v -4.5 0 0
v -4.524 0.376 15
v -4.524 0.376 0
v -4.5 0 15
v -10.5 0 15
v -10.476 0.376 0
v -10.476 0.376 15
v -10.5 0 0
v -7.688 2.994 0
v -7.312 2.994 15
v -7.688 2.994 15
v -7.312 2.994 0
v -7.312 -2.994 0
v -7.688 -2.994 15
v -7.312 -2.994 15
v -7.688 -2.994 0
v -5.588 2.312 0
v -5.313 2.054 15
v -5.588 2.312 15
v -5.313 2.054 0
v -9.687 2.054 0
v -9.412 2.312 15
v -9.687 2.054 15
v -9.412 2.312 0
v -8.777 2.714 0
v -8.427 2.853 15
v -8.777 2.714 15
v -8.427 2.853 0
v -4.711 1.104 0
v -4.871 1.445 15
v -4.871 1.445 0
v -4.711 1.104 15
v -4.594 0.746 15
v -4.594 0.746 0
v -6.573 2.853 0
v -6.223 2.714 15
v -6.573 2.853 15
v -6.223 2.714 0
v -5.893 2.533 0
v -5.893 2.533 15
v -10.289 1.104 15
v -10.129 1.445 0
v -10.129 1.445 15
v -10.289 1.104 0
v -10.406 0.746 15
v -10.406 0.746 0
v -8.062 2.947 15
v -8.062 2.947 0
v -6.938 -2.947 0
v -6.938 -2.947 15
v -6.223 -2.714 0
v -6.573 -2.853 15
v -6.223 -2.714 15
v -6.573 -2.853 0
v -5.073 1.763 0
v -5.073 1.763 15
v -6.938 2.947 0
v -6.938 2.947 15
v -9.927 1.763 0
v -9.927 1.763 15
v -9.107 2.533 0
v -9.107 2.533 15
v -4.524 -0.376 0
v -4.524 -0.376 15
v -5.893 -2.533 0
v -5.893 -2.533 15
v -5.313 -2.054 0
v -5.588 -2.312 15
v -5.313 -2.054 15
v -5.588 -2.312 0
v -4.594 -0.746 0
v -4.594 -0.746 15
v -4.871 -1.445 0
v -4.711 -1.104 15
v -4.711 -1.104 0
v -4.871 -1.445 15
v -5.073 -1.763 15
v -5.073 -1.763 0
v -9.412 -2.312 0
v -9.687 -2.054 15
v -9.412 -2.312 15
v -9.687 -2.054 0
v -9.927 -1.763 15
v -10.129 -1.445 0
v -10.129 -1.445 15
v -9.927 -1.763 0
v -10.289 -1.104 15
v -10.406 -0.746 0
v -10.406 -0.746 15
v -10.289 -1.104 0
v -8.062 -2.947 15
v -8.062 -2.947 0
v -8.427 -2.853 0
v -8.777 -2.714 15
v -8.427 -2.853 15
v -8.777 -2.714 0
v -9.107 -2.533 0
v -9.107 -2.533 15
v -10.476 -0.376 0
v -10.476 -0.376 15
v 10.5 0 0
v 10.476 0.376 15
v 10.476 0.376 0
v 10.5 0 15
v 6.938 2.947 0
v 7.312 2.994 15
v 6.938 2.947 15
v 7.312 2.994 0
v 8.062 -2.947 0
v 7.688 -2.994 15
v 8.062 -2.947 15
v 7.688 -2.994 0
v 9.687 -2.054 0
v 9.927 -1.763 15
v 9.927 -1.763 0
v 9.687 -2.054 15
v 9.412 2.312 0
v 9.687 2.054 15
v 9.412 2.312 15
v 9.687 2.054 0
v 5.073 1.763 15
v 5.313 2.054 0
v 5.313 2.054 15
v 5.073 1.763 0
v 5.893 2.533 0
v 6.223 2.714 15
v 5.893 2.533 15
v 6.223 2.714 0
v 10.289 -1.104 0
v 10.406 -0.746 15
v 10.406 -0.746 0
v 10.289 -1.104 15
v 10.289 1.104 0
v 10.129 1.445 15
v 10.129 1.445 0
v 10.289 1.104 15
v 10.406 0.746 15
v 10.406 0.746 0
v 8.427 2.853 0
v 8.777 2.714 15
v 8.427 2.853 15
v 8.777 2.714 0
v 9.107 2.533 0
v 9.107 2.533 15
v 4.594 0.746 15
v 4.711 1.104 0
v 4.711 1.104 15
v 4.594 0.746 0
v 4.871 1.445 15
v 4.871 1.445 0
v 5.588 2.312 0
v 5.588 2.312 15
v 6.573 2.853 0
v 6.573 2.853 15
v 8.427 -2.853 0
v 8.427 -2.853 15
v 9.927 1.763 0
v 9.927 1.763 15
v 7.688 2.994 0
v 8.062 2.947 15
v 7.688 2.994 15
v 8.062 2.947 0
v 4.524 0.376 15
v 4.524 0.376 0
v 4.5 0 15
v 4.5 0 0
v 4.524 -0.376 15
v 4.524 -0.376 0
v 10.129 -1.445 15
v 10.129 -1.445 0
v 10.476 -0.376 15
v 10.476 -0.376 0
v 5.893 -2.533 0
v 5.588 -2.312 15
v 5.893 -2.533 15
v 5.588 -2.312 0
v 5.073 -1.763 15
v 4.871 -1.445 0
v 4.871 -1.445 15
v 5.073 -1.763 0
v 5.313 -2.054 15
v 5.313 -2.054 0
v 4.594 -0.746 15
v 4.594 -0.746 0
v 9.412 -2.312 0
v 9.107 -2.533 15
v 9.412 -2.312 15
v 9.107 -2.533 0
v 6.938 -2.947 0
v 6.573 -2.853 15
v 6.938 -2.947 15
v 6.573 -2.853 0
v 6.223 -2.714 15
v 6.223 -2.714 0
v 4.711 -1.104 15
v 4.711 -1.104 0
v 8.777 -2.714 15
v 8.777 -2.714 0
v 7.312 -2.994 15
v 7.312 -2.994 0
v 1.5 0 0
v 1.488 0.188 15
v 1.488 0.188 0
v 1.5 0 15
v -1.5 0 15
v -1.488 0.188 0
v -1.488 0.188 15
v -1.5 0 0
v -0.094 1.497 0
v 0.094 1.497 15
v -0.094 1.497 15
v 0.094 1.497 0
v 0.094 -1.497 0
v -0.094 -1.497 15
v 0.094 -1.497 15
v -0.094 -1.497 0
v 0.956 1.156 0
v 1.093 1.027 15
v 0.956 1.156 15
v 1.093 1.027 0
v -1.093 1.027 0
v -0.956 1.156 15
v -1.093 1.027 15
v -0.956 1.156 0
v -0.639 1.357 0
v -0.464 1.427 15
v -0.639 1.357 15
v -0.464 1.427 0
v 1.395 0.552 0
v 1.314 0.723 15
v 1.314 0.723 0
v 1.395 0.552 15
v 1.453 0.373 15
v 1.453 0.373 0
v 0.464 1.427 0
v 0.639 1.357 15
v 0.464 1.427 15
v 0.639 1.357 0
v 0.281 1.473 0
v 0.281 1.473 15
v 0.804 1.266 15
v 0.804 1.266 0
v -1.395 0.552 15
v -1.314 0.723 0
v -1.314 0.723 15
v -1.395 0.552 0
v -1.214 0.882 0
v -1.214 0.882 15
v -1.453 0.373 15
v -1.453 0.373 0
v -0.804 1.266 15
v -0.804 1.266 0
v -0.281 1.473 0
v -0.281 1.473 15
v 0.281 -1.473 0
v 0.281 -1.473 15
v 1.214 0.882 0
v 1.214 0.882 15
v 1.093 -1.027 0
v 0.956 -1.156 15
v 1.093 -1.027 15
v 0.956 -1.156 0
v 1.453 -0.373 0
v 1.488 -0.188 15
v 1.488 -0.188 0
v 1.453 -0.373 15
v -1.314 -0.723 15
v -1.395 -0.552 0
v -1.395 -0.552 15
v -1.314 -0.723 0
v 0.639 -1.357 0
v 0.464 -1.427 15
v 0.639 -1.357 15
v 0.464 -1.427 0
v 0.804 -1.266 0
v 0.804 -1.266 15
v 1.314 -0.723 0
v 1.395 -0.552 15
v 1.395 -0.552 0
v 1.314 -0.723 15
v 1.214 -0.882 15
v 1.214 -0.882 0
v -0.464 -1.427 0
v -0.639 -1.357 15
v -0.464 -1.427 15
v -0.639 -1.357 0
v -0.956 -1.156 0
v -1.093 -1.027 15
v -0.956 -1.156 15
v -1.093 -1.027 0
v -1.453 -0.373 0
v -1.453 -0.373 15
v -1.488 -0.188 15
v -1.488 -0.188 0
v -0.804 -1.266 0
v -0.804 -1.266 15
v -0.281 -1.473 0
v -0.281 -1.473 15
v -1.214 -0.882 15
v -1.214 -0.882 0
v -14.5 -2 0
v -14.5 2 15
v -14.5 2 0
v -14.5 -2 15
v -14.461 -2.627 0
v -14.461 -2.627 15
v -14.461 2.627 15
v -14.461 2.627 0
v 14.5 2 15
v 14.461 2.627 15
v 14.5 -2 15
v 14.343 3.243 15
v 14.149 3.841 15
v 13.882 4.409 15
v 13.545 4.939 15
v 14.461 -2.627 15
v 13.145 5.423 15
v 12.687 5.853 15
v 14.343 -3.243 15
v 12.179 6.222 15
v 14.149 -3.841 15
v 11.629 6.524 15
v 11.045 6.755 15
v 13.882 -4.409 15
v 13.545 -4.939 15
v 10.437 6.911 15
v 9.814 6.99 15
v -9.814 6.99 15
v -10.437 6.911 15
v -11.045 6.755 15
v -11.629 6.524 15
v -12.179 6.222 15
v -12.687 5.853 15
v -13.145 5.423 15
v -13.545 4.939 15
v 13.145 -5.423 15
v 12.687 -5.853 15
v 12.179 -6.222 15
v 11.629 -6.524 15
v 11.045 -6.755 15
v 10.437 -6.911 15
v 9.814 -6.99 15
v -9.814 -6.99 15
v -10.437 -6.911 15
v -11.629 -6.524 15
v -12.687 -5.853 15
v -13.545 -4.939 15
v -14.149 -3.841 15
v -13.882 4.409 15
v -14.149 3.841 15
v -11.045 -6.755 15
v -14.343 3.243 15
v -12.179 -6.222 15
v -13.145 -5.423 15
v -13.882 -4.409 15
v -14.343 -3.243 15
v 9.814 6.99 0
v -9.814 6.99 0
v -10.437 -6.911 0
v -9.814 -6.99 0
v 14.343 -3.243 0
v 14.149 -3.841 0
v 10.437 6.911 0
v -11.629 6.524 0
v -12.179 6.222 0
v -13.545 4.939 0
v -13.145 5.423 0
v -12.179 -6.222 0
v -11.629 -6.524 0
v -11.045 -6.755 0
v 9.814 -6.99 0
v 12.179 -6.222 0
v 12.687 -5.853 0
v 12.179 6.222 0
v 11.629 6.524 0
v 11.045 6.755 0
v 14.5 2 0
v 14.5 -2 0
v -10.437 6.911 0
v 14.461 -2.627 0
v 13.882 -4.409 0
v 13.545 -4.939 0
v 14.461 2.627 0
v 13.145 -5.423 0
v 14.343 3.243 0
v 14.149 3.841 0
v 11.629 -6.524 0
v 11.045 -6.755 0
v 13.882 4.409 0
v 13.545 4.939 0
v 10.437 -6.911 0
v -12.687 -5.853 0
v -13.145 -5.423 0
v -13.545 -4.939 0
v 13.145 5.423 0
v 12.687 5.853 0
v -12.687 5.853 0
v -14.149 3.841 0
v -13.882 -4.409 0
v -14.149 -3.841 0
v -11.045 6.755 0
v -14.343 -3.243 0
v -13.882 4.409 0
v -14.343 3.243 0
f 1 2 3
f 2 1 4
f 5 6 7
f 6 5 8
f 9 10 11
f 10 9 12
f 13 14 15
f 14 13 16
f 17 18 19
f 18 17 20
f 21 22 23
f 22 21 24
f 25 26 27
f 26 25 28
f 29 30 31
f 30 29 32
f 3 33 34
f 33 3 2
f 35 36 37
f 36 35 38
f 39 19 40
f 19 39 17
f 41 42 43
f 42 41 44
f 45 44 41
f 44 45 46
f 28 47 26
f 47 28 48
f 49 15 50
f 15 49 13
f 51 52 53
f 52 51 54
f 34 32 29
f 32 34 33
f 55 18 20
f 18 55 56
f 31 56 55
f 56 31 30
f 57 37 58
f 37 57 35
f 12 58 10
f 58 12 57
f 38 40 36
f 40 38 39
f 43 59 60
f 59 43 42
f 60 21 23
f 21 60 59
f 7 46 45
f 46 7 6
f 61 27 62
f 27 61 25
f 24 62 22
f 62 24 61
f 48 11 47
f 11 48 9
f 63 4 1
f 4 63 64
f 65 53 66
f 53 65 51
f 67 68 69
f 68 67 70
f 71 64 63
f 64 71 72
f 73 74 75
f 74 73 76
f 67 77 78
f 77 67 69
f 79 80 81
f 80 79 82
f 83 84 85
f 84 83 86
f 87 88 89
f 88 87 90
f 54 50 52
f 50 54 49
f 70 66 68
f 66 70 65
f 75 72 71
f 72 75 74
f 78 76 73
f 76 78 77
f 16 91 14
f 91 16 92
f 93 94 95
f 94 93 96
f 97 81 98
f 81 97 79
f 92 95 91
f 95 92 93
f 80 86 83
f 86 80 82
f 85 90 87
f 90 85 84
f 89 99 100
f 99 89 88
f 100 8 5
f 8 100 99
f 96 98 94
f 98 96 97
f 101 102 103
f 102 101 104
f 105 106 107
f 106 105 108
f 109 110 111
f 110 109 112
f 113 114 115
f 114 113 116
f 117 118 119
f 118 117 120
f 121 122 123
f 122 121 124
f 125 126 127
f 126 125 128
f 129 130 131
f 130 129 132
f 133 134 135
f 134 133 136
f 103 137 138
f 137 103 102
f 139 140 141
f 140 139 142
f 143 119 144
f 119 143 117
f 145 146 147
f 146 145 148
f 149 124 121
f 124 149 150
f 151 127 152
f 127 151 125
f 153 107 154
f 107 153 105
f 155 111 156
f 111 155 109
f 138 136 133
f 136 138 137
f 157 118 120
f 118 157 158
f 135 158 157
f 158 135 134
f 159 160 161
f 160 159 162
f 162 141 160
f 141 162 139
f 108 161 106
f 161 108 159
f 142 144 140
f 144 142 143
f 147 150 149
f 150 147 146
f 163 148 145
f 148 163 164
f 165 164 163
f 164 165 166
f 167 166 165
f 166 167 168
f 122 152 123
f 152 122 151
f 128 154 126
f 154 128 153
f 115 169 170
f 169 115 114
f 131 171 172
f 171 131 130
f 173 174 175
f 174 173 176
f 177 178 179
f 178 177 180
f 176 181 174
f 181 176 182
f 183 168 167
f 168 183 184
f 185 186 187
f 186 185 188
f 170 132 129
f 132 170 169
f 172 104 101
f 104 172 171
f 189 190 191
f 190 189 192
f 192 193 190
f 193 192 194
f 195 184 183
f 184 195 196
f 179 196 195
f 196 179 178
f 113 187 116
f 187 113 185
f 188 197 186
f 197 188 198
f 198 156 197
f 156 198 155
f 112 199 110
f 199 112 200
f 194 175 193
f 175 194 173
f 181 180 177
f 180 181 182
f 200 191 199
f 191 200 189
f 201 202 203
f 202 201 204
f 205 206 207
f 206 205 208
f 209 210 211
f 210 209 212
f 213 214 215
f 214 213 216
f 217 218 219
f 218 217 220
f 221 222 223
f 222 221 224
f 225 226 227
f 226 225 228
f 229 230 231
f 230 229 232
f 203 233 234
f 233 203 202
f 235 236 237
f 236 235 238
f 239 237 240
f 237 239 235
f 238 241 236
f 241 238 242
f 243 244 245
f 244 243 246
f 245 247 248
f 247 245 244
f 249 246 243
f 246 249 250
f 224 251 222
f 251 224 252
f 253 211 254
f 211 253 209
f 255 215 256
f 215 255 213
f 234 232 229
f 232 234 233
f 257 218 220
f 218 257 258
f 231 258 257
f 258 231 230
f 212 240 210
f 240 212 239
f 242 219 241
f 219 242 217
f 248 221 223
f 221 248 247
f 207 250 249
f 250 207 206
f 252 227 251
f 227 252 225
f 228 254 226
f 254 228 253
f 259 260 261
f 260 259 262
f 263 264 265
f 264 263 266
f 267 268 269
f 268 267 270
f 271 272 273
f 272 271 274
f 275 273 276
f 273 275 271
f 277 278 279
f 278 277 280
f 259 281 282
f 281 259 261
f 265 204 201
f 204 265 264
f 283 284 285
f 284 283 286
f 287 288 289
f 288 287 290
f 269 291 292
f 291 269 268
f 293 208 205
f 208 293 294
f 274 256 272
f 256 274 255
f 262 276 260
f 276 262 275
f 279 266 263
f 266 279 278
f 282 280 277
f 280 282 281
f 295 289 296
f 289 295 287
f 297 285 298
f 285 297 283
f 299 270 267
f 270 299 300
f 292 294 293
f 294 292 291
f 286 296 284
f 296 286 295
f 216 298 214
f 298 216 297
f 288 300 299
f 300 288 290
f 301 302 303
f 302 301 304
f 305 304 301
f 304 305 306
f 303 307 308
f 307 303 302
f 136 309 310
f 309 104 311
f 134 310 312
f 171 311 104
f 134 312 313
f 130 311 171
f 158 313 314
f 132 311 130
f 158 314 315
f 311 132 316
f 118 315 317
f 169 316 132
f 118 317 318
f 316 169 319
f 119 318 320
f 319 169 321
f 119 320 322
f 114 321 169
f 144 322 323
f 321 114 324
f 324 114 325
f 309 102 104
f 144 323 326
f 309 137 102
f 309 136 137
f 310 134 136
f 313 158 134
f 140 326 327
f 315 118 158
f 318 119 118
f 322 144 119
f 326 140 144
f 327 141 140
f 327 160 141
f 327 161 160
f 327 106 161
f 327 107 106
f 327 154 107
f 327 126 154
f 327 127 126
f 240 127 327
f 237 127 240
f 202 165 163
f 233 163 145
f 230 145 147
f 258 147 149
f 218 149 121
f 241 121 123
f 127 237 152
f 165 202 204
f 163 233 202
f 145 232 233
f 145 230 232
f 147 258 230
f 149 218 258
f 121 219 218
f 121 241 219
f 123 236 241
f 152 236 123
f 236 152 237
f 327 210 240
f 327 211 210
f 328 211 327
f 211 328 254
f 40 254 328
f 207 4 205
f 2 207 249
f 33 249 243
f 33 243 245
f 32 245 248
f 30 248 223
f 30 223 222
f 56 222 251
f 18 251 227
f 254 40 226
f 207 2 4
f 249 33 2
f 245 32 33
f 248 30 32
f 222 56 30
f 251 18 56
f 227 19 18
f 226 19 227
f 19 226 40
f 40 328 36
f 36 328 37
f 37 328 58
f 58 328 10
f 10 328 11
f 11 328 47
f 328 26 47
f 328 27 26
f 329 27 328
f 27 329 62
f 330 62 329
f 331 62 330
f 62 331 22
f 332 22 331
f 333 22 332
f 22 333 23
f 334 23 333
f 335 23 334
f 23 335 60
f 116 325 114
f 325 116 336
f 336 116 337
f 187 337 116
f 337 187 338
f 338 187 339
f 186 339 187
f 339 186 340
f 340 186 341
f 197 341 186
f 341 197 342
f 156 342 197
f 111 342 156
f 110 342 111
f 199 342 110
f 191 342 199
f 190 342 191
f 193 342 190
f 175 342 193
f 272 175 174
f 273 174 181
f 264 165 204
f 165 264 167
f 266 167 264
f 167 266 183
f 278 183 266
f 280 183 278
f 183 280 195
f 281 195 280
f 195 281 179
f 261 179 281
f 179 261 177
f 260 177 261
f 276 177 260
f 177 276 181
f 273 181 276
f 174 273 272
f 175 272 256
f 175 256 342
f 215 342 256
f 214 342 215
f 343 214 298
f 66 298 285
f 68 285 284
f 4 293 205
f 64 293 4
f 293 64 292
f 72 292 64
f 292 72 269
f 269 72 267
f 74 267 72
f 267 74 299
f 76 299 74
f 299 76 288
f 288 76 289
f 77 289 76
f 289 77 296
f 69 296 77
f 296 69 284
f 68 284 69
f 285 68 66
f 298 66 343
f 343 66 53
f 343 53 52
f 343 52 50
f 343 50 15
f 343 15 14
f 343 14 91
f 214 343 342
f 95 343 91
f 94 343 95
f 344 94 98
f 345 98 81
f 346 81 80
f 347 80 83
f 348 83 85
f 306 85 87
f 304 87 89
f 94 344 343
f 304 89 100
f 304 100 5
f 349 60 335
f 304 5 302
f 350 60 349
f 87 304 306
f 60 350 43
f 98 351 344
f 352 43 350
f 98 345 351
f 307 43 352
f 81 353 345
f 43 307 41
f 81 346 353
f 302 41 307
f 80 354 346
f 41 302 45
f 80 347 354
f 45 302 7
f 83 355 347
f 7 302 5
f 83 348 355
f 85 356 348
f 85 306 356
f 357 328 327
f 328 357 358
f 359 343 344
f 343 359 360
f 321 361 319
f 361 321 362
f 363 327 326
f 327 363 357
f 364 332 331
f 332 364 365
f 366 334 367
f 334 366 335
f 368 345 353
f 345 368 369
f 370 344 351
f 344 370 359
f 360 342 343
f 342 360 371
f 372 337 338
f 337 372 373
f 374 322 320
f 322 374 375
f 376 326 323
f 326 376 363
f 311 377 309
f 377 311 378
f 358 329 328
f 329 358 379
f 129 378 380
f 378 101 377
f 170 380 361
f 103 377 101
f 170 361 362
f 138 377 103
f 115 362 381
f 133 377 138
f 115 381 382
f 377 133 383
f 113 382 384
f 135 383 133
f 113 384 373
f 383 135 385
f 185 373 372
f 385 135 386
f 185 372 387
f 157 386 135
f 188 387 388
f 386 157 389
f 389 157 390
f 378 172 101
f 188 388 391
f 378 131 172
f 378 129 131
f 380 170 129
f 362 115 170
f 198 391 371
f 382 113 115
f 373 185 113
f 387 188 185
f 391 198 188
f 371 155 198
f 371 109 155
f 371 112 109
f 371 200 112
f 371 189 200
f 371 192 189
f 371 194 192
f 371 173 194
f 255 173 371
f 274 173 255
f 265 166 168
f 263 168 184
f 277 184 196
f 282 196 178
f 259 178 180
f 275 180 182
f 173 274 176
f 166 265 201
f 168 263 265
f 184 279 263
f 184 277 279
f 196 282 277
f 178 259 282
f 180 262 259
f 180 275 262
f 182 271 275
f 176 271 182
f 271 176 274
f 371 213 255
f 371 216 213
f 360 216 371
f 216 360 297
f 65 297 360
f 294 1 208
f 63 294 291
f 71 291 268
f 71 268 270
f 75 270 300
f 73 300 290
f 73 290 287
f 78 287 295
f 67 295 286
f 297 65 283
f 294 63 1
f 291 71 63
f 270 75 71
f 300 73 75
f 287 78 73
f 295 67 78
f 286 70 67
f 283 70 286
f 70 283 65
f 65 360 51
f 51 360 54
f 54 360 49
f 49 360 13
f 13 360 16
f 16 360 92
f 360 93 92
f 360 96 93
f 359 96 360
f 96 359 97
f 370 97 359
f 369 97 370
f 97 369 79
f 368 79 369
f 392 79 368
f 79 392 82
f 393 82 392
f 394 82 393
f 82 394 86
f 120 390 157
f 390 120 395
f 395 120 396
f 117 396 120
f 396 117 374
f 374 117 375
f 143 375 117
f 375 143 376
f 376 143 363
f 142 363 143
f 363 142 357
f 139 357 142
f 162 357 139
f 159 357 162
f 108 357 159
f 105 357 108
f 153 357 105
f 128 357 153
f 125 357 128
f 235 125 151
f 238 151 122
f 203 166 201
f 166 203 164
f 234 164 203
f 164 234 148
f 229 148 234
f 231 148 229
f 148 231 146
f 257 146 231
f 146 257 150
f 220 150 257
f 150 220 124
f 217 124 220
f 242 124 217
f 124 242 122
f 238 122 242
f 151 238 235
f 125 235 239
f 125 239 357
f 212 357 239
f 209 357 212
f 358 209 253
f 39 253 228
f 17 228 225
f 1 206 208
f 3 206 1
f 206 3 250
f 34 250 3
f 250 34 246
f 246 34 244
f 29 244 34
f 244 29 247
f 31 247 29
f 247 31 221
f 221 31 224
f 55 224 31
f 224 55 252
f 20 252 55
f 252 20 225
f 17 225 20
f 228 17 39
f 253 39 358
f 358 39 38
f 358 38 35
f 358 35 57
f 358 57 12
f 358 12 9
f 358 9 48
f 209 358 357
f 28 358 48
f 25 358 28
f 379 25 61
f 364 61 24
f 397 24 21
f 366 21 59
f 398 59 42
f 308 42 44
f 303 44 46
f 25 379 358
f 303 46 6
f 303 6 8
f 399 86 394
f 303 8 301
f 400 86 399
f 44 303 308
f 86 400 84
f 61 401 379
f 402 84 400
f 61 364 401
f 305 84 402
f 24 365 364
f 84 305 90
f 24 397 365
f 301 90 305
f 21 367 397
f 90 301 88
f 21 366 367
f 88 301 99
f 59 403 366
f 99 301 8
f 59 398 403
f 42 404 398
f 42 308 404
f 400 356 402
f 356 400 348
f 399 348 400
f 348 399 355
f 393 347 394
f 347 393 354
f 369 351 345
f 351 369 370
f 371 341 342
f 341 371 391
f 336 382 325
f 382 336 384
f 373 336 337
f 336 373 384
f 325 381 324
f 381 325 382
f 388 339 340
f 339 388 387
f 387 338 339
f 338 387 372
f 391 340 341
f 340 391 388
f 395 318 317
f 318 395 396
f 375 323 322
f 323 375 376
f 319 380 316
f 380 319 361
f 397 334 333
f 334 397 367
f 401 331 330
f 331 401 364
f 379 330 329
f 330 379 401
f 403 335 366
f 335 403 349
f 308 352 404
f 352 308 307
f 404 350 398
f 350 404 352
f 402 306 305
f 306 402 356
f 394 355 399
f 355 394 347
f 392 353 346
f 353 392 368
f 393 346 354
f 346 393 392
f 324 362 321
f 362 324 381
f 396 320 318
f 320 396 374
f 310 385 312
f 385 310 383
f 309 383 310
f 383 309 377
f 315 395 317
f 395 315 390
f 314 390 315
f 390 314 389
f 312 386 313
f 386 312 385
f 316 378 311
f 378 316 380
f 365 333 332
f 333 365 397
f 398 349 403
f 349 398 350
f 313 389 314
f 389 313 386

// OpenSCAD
$fn = 50;


difference() {
	union() {
		translate(v = [0, 0, 0]) {
			rotate(a = [0, 0, 0]) {
				hull() {
					translate(v = [-9.5000000000, 2.0000000000, 0]) {
						rotate(a = [0, 0, 0]) {
							translate(v = [0, 0, 0]) {
								rotate(a = [0, 0, 0]) {
									cylinder(h = 15, r = 5);
								}
							}
						}
					}
					translate(v = [9.5000000000, 2.0000000000, 0]) {
						rotate(a = [0, 0, 0]) {
							translate(v = [0, 0, 0]) {
								rotate(a = [0, 0, 0]) {
									cylinder(h = 15, r = 5);
								}
							}
						}
					}
					translate(v = [-9.5000000000, -2.0000000000, 0]) {
						rotate(a = [0, 0, 0]) {
							translate(v = [0, 0, 0]) {
								rotate(a = [0, 0, 0]) {
									cylinder(h = 15, r = 5);
								}
							}
						}
					}
					translate(v = [9.5000000000, -2.0000000000, 0]) {
						rotate(a = [0, 0, 0]) {
							translate(v = [0, 0, 0]) {
								rotate(a = [0, 0, 0]) {
									cylinder(h = 15, r = 5);
								}
							}
						}
					}
				}
			}
		}
	}
	union() {
		translate(v = [-7.5000000000, 0.0000000000, 0]) {
			rotate(a = [0, 0, 0]) {
				translate(v = [0, 0, -50]) {
					rotate(a = [0, 0, 0]) {
						cylinder(h = 100, r = 3.0000000000);
					}
				}
			}
		}
		translate(v = [7.5000000000, 0.0000000000, 0]) {
			rotate(a = [0, 0, 0]) {
				translate(v = [0, 0, -50]) {
					rotate(a = [0, 0, 0]) {
						cylinder(h = 100, r = 3.0000000000);
					}
				}
			}
		}
		translate(v = [-7.5000000000, 0.0000000000, 0]) {
			rotate(a = [0, 0, 0]) {
				translate(v = [0, 0, -50]) {
					rotate(a = [0, 0, 0]) {
						cylinder(h = 100, r = 1.5000000000);
					}
				}
			}
		}
		translate(v = [0.0000000000, 0.0000000000, 0]) {
			rotate(a = [0, 0, 0]) {
				translate(v = [0, 0, -50]) {
					rotate(a = [0, 0, 0]) {
						cylinder(h = 100, r = 1.5000000000);
					}
				}
			}
		}
		translate(v = [7.5000000000, 0.0000000000, 0]) {
			rotate(a = [0, 0, 0]) {
				translate(v = [0, 0, -50]) {
					rotate(a = [0, 0, 0]) {
						cylinder(h = 100, r = 1.5000000000);
					}
				}
			}
		}
	}
}
